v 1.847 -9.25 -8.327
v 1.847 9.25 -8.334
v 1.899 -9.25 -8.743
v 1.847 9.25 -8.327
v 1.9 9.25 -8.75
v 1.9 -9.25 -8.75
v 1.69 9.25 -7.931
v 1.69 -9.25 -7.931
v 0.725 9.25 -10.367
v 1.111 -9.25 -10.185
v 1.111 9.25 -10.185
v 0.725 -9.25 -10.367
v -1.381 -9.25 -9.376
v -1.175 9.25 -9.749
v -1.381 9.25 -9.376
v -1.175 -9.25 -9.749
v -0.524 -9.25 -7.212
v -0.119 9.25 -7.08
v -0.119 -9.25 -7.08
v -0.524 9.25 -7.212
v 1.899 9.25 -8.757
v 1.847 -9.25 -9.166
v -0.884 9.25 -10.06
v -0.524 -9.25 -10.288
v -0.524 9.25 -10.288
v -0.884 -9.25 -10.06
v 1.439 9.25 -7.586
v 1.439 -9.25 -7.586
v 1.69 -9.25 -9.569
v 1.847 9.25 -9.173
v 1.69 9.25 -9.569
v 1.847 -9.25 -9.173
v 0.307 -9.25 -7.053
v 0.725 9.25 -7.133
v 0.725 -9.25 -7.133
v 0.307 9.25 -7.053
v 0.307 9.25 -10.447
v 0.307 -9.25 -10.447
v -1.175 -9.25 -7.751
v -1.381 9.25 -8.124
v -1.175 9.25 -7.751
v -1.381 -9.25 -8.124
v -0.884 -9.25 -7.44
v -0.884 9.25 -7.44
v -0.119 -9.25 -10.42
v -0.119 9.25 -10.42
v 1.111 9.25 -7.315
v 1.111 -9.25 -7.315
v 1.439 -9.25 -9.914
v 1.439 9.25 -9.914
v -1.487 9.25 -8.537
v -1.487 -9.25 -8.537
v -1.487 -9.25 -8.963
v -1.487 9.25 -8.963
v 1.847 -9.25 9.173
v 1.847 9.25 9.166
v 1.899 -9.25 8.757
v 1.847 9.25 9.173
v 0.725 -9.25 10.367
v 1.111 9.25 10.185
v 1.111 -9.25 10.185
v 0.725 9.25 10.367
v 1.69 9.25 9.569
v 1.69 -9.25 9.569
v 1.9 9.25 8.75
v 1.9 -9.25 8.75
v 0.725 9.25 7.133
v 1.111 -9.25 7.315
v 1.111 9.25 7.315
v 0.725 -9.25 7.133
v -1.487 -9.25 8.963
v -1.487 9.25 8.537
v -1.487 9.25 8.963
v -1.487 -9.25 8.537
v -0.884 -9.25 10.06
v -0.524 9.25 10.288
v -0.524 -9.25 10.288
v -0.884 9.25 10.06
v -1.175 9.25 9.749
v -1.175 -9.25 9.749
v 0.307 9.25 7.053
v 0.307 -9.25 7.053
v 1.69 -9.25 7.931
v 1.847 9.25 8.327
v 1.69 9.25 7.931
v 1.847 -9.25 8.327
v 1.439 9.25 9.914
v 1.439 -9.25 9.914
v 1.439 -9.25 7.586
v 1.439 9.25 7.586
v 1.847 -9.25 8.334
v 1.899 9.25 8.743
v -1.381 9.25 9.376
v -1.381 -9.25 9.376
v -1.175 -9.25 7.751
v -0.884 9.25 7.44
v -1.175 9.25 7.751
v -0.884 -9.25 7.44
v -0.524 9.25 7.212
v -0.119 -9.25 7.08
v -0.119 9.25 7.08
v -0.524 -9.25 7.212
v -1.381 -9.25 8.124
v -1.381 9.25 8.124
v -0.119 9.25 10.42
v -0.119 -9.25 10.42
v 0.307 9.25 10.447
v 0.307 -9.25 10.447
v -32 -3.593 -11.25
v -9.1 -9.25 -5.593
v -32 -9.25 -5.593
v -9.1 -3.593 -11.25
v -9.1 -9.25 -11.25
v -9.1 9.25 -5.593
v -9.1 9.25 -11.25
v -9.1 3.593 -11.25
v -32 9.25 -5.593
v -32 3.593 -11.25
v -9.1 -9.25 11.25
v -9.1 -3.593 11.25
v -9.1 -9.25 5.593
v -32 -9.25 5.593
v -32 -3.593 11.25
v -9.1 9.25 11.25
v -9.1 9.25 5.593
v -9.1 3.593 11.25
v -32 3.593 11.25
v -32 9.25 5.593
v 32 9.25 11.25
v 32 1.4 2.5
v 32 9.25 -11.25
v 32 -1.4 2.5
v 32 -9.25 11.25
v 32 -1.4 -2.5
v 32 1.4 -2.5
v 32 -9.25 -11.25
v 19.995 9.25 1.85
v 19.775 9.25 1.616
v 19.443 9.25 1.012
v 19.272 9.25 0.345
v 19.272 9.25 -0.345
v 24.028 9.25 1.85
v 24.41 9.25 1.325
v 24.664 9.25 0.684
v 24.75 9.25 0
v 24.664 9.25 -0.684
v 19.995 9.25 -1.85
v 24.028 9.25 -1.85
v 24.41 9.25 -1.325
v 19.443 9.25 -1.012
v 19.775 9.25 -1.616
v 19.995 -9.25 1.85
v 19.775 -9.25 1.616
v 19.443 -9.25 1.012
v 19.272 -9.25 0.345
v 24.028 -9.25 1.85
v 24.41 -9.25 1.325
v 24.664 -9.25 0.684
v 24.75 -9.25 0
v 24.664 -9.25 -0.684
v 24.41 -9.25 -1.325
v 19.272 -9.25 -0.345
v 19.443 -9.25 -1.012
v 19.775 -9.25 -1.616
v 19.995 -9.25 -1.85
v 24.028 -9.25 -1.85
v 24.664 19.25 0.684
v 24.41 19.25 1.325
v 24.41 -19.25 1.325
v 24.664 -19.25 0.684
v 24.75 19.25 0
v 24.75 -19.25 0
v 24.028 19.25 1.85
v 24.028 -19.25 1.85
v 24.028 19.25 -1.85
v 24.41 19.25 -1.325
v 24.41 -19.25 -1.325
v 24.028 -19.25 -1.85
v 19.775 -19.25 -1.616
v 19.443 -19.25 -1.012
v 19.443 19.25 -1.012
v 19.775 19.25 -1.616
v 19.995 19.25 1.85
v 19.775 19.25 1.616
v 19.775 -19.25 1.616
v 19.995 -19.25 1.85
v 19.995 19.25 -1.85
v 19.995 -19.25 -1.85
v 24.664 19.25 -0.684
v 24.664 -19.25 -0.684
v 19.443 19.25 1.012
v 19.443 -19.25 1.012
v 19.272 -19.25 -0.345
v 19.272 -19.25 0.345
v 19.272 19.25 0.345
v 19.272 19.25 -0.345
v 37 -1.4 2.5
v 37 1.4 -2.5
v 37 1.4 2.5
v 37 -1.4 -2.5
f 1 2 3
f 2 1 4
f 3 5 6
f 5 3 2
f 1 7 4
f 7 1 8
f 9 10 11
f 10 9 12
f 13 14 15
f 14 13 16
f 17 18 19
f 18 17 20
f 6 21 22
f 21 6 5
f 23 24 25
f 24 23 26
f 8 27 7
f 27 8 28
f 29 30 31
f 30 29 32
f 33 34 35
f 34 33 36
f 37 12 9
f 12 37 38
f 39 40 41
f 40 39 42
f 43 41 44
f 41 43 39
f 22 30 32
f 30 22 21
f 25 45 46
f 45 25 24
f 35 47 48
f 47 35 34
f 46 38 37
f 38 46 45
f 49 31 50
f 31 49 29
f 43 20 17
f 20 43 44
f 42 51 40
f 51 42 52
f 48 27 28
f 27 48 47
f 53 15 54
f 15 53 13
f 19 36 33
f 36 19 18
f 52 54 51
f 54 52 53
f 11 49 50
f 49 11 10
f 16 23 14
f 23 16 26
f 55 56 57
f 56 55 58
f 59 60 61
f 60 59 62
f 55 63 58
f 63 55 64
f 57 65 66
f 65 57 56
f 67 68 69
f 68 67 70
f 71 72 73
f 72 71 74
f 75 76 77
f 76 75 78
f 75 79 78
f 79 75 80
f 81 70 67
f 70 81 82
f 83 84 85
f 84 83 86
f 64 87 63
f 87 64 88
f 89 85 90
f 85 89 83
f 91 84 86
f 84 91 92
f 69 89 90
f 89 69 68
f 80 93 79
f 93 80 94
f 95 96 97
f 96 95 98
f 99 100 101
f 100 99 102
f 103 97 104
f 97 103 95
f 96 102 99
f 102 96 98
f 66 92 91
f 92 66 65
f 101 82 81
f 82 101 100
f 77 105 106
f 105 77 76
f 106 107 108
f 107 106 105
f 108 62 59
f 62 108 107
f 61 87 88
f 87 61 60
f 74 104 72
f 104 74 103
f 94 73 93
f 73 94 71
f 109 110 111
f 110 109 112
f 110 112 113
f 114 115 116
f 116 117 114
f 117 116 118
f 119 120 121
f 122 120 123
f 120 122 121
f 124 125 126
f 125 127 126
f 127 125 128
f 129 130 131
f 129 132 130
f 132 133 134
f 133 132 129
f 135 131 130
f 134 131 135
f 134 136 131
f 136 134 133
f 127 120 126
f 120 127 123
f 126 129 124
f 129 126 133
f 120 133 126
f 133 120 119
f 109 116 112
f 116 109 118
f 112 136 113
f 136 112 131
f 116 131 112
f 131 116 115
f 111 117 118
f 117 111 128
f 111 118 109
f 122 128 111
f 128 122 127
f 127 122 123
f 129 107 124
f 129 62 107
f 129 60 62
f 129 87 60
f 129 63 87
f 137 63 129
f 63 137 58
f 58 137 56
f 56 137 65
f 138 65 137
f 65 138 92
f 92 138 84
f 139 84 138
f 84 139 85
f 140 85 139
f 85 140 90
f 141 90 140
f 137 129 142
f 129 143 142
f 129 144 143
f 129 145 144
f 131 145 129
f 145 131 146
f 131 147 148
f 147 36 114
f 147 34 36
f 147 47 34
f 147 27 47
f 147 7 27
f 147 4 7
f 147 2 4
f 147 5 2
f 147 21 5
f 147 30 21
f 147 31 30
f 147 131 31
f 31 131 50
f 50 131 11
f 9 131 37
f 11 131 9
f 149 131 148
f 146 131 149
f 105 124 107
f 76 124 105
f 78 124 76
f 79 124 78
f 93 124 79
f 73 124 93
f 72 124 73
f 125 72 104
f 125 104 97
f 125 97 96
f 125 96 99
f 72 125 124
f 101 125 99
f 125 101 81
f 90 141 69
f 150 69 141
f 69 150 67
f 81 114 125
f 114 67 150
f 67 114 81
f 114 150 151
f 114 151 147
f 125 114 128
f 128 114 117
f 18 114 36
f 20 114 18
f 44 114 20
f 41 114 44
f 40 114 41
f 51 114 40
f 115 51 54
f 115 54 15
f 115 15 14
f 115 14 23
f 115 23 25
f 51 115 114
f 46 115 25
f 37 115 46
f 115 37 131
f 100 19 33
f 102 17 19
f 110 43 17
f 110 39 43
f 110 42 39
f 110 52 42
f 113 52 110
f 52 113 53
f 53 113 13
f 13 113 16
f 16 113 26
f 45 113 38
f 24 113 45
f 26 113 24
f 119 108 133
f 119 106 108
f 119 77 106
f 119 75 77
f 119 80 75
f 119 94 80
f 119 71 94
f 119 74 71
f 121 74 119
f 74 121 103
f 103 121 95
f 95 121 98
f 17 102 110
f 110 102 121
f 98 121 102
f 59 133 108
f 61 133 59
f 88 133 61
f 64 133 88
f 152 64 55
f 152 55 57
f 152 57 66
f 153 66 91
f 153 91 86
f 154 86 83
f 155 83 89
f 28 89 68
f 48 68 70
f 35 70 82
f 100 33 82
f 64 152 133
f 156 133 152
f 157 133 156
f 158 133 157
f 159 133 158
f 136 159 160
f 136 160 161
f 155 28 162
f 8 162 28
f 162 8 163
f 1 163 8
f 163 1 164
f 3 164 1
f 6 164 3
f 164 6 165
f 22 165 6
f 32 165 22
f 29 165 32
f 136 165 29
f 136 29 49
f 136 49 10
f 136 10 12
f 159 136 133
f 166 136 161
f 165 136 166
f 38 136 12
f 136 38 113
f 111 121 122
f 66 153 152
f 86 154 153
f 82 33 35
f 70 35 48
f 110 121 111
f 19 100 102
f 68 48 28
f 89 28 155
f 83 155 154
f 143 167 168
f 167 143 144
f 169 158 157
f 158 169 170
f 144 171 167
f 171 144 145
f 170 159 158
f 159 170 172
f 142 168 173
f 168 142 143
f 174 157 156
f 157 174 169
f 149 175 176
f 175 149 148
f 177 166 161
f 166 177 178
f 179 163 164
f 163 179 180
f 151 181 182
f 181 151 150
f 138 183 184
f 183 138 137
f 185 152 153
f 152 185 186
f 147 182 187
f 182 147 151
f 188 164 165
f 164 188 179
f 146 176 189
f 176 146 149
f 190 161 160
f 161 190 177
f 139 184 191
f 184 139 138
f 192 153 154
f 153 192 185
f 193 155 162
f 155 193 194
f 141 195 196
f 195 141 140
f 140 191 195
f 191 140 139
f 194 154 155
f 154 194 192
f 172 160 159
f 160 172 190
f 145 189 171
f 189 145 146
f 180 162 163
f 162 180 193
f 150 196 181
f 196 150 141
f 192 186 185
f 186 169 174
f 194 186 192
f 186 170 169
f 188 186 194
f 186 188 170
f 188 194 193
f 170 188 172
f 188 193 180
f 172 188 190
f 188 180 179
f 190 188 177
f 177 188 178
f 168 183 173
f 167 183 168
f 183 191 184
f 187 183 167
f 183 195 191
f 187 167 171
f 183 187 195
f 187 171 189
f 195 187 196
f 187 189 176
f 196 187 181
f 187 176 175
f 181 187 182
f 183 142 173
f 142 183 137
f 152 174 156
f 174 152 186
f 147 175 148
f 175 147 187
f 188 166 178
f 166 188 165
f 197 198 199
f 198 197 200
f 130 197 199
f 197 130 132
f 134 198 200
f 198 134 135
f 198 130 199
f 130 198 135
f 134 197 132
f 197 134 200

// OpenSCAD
// NAME: Gearbox Motor
// CATEGORY: Electric Motor
// COLOR: 226

$fn=25;

module gearbox_motor(){
    color("Yellow")
    difference(){
        cube([64, 18.5, 22.5], center=true);

        for (i=[-1, 1])
            translate([64/2-31.8, 0, 17.5*i/2])
                rotate([90, 0, 0])
                cylinder(d=3.4, h=19.1, center=true);

        for (z=[-1, 1])
            for (y=[-1, 1])
                translate([-20.6, y*18.5/2, z*22.5/2])
                    rotate([45, 0, 0])
                    cube([23, 8, 8], center=true);
    }

    color("Yellow")
    translate([64/2+2.5, 0, 0])
        cube([5, 2.8, 5], center=true);

    color("silver")
    translate([66/2-11, 0, 0])
        rotate([90, 0, 0])
        difference(){
            cylinder(d=5.5, h=38.5, center=true);
            translate([0, 3.7/2+5.5/2])
                cube([5.5, 5.5, 38.6], center=true);
            translate([0, -3.7/2-5.5/2])
                cube([5.5, 5.5, 38.6], center=true);
        }
}

gearbox_motor();
